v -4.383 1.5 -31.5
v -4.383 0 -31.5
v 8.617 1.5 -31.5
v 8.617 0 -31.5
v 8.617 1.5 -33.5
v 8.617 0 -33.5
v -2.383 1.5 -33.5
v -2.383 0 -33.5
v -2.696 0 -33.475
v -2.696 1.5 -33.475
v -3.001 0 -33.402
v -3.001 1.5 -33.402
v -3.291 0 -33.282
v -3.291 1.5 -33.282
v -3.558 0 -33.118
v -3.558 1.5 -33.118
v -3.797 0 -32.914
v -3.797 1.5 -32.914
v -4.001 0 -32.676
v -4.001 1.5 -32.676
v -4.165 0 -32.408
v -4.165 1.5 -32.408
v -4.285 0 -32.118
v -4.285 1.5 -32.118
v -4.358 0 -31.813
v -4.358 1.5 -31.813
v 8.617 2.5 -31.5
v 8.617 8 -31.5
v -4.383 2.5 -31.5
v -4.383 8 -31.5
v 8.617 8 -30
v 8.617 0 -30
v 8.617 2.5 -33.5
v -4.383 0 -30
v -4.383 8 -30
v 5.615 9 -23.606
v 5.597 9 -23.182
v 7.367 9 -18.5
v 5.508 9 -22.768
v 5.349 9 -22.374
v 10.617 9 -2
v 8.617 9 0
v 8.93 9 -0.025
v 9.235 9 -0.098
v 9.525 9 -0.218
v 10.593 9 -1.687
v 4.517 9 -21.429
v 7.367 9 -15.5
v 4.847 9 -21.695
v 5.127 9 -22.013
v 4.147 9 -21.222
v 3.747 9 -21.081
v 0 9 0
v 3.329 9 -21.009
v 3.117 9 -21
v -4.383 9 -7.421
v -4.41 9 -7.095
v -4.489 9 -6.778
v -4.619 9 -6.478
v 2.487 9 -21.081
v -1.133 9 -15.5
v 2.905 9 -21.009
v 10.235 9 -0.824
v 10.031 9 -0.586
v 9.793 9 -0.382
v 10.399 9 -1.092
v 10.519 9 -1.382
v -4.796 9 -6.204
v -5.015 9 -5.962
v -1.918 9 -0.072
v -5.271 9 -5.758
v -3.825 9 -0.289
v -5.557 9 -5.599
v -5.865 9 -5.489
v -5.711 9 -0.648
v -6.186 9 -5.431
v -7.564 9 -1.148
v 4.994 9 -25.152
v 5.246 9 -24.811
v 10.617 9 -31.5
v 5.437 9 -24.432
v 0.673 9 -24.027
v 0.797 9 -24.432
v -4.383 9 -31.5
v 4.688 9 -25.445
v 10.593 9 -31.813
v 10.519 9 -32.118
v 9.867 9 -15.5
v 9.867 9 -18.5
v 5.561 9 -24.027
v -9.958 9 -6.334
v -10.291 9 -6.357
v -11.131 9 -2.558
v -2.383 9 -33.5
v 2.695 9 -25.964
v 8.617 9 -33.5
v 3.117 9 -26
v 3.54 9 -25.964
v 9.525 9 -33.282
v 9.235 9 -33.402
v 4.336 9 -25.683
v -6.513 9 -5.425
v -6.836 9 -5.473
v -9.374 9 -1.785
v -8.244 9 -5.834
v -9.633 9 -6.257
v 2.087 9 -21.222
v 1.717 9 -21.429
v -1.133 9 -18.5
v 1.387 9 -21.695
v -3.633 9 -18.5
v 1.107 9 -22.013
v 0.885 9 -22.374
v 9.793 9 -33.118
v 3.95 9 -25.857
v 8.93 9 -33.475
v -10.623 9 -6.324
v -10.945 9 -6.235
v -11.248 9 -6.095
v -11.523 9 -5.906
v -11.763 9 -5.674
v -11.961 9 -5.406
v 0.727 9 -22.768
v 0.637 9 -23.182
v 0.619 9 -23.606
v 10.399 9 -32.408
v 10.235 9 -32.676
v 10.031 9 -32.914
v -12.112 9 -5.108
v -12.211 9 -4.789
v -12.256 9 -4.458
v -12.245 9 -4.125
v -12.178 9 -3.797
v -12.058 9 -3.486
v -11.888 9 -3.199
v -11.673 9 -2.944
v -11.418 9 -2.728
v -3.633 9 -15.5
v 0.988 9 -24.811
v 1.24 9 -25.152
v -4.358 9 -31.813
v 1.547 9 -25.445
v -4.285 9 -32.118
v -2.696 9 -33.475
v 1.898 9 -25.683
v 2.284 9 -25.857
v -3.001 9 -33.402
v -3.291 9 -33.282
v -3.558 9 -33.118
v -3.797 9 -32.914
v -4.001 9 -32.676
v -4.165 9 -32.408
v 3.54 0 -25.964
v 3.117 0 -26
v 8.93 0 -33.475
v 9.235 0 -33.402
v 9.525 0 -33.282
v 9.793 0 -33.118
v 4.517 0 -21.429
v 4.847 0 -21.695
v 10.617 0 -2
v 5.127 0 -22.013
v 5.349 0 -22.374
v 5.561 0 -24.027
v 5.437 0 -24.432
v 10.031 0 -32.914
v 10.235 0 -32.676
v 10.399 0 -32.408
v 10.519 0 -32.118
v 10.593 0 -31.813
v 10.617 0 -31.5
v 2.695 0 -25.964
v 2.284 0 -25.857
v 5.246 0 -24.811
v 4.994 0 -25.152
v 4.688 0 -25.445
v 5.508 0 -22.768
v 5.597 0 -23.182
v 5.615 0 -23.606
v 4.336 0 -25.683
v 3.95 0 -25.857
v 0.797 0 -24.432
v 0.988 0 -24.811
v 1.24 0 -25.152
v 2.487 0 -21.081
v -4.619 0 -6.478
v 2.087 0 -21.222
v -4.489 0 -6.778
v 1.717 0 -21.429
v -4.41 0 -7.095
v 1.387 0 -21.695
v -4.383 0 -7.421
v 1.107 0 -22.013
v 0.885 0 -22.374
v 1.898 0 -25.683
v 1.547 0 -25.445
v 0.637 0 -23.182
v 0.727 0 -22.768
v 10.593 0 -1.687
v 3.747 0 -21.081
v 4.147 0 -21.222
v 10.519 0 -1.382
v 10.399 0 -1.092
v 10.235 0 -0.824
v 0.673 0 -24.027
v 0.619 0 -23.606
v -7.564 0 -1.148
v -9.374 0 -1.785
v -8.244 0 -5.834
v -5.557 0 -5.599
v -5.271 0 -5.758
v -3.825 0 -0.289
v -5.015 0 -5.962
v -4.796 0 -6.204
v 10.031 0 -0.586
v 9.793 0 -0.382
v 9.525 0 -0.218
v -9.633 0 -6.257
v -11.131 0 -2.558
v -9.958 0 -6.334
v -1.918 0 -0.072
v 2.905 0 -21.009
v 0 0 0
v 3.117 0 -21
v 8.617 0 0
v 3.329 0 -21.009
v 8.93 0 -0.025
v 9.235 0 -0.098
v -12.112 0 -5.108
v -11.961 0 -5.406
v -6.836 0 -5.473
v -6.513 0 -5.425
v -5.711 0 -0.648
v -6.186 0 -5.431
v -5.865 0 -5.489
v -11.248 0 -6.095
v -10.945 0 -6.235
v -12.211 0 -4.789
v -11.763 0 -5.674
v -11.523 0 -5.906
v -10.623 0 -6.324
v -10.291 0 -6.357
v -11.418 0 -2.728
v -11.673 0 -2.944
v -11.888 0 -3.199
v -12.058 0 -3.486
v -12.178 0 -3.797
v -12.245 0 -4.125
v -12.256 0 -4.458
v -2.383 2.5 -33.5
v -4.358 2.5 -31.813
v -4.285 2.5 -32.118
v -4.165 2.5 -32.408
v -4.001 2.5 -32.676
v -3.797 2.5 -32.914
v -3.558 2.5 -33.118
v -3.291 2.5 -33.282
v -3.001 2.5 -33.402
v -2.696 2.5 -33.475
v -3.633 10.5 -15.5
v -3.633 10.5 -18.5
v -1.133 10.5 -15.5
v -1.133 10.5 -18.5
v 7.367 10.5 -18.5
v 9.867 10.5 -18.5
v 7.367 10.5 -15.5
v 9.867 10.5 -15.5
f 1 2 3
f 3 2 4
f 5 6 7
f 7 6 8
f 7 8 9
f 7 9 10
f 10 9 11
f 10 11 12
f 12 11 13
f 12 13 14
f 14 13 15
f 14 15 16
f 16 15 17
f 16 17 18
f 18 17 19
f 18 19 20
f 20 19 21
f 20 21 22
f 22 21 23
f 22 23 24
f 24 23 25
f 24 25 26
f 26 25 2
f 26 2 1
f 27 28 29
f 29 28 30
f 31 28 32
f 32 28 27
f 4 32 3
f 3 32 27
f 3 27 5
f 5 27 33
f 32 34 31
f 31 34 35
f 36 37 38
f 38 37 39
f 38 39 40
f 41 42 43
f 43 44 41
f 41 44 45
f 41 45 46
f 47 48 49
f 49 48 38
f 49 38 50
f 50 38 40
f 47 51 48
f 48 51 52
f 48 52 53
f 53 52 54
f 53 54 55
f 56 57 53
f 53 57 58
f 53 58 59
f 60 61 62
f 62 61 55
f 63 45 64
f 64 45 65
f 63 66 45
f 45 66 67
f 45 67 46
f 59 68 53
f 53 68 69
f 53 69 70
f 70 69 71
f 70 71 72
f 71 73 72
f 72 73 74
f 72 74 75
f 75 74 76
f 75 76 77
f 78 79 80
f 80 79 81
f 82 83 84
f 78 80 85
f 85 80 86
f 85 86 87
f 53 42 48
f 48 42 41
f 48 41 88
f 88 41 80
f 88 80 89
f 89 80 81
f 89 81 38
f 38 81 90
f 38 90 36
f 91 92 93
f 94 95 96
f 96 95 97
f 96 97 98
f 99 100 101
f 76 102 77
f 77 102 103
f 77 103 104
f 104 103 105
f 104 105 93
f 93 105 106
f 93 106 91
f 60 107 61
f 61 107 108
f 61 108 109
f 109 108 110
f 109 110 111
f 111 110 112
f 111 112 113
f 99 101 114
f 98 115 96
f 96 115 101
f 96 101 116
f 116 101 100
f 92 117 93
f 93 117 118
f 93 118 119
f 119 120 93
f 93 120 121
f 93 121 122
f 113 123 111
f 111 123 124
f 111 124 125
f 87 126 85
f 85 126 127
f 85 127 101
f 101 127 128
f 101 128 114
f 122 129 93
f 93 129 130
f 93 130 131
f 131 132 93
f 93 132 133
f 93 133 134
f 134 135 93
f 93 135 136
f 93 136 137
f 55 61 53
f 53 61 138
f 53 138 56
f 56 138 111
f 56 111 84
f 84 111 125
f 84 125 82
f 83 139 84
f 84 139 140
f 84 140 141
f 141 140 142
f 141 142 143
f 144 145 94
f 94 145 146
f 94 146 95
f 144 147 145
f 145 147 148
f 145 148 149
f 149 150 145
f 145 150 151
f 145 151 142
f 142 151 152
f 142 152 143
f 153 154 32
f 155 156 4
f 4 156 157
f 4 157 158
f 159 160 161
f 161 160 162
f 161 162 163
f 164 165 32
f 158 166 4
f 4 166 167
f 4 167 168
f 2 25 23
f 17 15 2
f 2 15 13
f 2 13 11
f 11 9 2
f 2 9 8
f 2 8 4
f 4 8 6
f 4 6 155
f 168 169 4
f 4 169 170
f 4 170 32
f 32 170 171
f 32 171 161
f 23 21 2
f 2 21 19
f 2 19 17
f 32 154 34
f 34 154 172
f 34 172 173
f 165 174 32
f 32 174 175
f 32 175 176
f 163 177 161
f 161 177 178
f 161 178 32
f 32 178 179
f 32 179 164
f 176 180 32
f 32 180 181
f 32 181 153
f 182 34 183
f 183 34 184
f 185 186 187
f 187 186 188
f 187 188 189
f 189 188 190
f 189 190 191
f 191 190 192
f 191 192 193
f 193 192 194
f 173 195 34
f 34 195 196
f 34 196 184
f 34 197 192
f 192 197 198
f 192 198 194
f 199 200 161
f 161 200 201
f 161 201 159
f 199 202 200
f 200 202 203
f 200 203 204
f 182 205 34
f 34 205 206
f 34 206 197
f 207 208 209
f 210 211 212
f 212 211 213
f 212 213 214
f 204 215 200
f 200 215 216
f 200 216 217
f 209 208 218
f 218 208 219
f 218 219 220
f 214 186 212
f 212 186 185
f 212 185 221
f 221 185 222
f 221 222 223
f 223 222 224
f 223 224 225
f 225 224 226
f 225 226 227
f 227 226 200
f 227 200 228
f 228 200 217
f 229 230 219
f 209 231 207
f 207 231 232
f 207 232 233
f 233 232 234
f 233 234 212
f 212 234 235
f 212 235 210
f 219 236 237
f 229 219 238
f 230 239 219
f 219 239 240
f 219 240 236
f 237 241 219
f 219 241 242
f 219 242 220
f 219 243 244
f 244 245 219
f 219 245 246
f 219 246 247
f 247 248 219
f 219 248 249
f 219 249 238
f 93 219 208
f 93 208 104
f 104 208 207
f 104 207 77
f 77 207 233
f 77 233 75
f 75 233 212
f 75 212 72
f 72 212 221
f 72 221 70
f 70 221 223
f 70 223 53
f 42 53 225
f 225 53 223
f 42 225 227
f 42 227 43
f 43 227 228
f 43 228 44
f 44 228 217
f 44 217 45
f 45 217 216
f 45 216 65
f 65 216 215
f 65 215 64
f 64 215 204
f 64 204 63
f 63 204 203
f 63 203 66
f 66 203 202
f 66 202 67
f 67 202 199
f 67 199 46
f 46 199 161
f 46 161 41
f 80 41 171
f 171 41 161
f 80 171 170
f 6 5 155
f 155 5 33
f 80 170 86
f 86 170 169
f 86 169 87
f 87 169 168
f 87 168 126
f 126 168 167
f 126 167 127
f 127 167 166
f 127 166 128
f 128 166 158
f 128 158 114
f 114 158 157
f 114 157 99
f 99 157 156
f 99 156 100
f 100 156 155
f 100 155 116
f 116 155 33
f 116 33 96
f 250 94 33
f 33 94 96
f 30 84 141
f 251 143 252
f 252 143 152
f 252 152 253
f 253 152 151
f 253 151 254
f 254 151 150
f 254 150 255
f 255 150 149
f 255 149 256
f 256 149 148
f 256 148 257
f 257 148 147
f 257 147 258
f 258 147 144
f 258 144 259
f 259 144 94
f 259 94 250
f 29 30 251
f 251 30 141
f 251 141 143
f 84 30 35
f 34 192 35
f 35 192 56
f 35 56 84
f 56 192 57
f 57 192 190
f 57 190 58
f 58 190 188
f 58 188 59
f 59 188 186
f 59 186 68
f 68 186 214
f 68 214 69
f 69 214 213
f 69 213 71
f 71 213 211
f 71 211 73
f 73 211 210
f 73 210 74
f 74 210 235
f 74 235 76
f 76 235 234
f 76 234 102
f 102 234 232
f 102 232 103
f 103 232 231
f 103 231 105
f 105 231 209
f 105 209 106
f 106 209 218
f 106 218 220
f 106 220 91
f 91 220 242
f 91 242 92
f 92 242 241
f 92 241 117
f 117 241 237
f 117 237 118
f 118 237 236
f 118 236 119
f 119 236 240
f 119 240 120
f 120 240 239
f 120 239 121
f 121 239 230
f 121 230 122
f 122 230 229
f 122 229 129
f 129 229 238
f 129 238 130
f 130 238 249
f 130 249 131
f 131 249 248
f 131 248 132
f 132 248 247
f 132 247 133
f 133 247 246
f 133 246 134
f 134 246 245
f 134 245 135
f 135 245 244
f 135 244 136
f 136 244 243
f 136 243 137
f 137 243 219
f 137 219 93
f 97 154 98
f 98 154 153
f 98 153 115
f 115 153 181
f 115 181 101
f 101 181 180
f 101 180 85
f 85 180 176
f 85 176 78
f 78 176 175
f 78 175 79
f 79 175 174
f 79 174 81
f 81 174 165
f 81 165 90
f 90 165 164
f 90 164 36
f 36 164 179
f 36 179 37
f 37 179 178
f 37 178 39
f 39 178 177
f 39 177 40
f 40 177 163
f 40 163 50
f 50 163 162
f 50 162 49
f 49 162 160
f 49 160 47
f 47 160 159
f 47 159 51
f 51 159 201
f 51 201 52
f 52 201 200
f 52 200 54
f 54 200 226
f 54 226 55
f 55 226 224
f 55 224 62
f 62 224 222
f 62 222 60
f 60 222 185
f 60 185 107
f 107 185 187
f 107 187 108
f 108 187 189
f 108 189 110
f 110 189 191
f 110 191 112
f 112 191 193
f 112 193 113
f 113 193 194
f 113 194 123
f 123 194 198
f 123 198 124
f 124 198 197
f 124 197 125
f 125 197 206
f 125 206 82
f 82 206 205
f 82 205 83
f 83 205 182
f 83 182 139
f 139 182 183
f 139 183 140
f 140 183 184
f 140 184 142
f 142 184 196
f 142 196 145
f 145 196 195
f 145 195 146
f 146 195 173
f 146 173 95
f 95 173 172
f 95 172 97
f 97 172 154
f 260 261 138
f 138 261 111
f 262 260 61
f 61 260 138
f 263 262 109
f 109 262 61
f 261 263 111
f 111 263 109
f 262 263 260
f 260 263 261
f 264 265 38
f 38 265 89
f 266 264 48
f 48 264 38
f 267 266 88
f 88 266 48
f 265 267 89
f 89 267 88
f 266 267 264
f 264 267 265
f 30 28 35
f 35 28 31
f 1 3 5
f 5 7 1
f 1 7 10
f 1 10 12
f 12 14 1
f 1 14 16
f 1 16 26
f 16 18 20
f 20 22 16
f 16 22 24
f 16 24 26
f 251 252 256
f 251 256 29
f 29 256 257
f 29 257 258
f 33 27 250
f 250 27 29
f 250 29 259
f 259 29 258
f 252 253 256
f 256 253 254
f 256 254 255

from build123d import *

# Parameters (mm, degrees)
SKETCH_1_R          = 2.5
EXTRUDE_1_DEPTH     = 9
SKETCH_3_W          = 2.5
SKETCH_3_H          = 3
EXTRUDE_2_DEPTH     = 1.5
CUT_EXTRUDE_1_REACH = 11
SKETCH_5_W          = 13
SKETCH_5_H          = 1.5
SKETCH_6_W          = 13
SKETCH_6_H          = 1.5
EXTRUDE_3_DEPTH     = 1
CUT_EXTRUDE_2_REACH = 35.5
SKETCH_7_W          = 13
SKETCH_7_H          = 1


with BuildPart() as part:
    # 草图1 → 凸台-拉伸1 (new body)
    with BuildSketch(Plane(origin=(0, 0, 0), x_dir=(1, 0, 0), z_dir=(0, 1, 0))):
        with BuildLine():
            Line((-2.382835885, 33.5), (8.617164115, 33.5))
            ThreePointArc((8.617164115, 33.5), (10.031377677, 32.914213562), (10.617164115, 31.5))
            Line((10.617164115, 31.5), (10.617164115, 2))
            ThreePointArc((10.617164115, 2), (10.031377677, 0.585786438), (8.617164115, 0))
            Line((8.617164115, 0), (0, 0))
            ThreePointArc((0, 0), (-5.710600422, 0.647655185), (-11.131122415, 2.557722132))
            ThreePointArc((-11.131122415, 2.557722132), (-12.111898361, 5.107720531), (-9.633282348, 6.257014206))
            ThreePointArc((-9.633282348, 6.257014206), (-8.243555708, 5.833986106), (-6.836394497, 5.473167269))
            ThreePointArc((-6.836394497, 5.473167269), (-5.139275919, 5.854675685), (-4.382835885, 7.421059613))
            Line((-4.382835885, 7.421059613), (-4.382835885, 31.5))
            ThreePointArc((-4.382835885, 31.5), (-3.797049447, 32.914213562), (-2.382835885, 33.5))
        make_face()
        with Locations((3.117164115, 23.5)):
            Circle(SKETCH_1_R, mode=Mode.SUBTRACT)
    extrude(amount=EXTRUDE_1_DEPTH)

    # 草图3 → 凸台-拉伸2 (add)
    with BuildSketch(Plane(origin=(0, 9, 0), x_dir=(1, 0, 0), z_dir=(0, 1, 0))):
        with Locations((-2.382835885, 17)):
            Rectangle(SKETCH_3_W, SKETCH_3_H)
        with Locations((8.617164115, 17)):
            Rectangle(SKETCH_3_W, SKETCH_3_H)
    extrude(amount=EXTRUDE_2_DEPTH)

    # 草图5 → 切除-拉伸1 (cut, up to next)
    with BuildSketch(Plane(origin=(0, 9, 0), x_dir=(1, 0, 0), z_dir=(0, 1, 0)), mode=Mode.PRIVATE) as cut_extrude_1_sk1:
        with Locations((2.117164115, 30.75)):
            Rectangle(SKETCH_5_W, SKETCH_5_H)
    cut_extrude_1_tool1 = extrude(cut_extrude_1_sk1.sketch, amount=-CUT_EXTRUDE_1_REACH, mode=Mode.PRIVATE) & part.part
    add(cut_extrude_1_tool1.solids().sort_by_distance((2.117164, 9, -30.75))[0], mode=Mode.SUBTRACT)

    # 草图6 → 凸台-拉伸3 (add)
    with BuildSketch(Plane(origin=(0, 9, 0), x_dir=(1, 0, 0), z_dir=(0, 1, 0))):
        with Locations((2.117164115, 30.75)):
            Rectangle(SKETCH_6_W, SKETCH_6_H)
    extrude(amount=-EXTRUDE_3_DEPTH)

    # 草图7 → 切除-拉伸2 (cut, up to next)
    with BuildSketch(Plane(origin=(0, 0, -33.5), x_dir=(-1, 0, 0), z_dir=(0, 0, -1)), mode=Mode.PRIVATE) as cut_extrude_2_sk1:
        with Locations((-2.117164115, 2)):
            Rectangle(SKETCH_7_W, SKETCH_7_H)
    cut_extrude_2_tool1 = extrude(cut_extrude_2_sk1.sketch, amount=-CUT_EXTRUDE_2_REACH, mode=Mode.PRIVATE) & part.part
    add(cut_extrude_2_tool1.solids().sort_by_distance((2.117164, 2, -33.5))[0], mode=Mode.SUBTRACT)


solid = part.part
